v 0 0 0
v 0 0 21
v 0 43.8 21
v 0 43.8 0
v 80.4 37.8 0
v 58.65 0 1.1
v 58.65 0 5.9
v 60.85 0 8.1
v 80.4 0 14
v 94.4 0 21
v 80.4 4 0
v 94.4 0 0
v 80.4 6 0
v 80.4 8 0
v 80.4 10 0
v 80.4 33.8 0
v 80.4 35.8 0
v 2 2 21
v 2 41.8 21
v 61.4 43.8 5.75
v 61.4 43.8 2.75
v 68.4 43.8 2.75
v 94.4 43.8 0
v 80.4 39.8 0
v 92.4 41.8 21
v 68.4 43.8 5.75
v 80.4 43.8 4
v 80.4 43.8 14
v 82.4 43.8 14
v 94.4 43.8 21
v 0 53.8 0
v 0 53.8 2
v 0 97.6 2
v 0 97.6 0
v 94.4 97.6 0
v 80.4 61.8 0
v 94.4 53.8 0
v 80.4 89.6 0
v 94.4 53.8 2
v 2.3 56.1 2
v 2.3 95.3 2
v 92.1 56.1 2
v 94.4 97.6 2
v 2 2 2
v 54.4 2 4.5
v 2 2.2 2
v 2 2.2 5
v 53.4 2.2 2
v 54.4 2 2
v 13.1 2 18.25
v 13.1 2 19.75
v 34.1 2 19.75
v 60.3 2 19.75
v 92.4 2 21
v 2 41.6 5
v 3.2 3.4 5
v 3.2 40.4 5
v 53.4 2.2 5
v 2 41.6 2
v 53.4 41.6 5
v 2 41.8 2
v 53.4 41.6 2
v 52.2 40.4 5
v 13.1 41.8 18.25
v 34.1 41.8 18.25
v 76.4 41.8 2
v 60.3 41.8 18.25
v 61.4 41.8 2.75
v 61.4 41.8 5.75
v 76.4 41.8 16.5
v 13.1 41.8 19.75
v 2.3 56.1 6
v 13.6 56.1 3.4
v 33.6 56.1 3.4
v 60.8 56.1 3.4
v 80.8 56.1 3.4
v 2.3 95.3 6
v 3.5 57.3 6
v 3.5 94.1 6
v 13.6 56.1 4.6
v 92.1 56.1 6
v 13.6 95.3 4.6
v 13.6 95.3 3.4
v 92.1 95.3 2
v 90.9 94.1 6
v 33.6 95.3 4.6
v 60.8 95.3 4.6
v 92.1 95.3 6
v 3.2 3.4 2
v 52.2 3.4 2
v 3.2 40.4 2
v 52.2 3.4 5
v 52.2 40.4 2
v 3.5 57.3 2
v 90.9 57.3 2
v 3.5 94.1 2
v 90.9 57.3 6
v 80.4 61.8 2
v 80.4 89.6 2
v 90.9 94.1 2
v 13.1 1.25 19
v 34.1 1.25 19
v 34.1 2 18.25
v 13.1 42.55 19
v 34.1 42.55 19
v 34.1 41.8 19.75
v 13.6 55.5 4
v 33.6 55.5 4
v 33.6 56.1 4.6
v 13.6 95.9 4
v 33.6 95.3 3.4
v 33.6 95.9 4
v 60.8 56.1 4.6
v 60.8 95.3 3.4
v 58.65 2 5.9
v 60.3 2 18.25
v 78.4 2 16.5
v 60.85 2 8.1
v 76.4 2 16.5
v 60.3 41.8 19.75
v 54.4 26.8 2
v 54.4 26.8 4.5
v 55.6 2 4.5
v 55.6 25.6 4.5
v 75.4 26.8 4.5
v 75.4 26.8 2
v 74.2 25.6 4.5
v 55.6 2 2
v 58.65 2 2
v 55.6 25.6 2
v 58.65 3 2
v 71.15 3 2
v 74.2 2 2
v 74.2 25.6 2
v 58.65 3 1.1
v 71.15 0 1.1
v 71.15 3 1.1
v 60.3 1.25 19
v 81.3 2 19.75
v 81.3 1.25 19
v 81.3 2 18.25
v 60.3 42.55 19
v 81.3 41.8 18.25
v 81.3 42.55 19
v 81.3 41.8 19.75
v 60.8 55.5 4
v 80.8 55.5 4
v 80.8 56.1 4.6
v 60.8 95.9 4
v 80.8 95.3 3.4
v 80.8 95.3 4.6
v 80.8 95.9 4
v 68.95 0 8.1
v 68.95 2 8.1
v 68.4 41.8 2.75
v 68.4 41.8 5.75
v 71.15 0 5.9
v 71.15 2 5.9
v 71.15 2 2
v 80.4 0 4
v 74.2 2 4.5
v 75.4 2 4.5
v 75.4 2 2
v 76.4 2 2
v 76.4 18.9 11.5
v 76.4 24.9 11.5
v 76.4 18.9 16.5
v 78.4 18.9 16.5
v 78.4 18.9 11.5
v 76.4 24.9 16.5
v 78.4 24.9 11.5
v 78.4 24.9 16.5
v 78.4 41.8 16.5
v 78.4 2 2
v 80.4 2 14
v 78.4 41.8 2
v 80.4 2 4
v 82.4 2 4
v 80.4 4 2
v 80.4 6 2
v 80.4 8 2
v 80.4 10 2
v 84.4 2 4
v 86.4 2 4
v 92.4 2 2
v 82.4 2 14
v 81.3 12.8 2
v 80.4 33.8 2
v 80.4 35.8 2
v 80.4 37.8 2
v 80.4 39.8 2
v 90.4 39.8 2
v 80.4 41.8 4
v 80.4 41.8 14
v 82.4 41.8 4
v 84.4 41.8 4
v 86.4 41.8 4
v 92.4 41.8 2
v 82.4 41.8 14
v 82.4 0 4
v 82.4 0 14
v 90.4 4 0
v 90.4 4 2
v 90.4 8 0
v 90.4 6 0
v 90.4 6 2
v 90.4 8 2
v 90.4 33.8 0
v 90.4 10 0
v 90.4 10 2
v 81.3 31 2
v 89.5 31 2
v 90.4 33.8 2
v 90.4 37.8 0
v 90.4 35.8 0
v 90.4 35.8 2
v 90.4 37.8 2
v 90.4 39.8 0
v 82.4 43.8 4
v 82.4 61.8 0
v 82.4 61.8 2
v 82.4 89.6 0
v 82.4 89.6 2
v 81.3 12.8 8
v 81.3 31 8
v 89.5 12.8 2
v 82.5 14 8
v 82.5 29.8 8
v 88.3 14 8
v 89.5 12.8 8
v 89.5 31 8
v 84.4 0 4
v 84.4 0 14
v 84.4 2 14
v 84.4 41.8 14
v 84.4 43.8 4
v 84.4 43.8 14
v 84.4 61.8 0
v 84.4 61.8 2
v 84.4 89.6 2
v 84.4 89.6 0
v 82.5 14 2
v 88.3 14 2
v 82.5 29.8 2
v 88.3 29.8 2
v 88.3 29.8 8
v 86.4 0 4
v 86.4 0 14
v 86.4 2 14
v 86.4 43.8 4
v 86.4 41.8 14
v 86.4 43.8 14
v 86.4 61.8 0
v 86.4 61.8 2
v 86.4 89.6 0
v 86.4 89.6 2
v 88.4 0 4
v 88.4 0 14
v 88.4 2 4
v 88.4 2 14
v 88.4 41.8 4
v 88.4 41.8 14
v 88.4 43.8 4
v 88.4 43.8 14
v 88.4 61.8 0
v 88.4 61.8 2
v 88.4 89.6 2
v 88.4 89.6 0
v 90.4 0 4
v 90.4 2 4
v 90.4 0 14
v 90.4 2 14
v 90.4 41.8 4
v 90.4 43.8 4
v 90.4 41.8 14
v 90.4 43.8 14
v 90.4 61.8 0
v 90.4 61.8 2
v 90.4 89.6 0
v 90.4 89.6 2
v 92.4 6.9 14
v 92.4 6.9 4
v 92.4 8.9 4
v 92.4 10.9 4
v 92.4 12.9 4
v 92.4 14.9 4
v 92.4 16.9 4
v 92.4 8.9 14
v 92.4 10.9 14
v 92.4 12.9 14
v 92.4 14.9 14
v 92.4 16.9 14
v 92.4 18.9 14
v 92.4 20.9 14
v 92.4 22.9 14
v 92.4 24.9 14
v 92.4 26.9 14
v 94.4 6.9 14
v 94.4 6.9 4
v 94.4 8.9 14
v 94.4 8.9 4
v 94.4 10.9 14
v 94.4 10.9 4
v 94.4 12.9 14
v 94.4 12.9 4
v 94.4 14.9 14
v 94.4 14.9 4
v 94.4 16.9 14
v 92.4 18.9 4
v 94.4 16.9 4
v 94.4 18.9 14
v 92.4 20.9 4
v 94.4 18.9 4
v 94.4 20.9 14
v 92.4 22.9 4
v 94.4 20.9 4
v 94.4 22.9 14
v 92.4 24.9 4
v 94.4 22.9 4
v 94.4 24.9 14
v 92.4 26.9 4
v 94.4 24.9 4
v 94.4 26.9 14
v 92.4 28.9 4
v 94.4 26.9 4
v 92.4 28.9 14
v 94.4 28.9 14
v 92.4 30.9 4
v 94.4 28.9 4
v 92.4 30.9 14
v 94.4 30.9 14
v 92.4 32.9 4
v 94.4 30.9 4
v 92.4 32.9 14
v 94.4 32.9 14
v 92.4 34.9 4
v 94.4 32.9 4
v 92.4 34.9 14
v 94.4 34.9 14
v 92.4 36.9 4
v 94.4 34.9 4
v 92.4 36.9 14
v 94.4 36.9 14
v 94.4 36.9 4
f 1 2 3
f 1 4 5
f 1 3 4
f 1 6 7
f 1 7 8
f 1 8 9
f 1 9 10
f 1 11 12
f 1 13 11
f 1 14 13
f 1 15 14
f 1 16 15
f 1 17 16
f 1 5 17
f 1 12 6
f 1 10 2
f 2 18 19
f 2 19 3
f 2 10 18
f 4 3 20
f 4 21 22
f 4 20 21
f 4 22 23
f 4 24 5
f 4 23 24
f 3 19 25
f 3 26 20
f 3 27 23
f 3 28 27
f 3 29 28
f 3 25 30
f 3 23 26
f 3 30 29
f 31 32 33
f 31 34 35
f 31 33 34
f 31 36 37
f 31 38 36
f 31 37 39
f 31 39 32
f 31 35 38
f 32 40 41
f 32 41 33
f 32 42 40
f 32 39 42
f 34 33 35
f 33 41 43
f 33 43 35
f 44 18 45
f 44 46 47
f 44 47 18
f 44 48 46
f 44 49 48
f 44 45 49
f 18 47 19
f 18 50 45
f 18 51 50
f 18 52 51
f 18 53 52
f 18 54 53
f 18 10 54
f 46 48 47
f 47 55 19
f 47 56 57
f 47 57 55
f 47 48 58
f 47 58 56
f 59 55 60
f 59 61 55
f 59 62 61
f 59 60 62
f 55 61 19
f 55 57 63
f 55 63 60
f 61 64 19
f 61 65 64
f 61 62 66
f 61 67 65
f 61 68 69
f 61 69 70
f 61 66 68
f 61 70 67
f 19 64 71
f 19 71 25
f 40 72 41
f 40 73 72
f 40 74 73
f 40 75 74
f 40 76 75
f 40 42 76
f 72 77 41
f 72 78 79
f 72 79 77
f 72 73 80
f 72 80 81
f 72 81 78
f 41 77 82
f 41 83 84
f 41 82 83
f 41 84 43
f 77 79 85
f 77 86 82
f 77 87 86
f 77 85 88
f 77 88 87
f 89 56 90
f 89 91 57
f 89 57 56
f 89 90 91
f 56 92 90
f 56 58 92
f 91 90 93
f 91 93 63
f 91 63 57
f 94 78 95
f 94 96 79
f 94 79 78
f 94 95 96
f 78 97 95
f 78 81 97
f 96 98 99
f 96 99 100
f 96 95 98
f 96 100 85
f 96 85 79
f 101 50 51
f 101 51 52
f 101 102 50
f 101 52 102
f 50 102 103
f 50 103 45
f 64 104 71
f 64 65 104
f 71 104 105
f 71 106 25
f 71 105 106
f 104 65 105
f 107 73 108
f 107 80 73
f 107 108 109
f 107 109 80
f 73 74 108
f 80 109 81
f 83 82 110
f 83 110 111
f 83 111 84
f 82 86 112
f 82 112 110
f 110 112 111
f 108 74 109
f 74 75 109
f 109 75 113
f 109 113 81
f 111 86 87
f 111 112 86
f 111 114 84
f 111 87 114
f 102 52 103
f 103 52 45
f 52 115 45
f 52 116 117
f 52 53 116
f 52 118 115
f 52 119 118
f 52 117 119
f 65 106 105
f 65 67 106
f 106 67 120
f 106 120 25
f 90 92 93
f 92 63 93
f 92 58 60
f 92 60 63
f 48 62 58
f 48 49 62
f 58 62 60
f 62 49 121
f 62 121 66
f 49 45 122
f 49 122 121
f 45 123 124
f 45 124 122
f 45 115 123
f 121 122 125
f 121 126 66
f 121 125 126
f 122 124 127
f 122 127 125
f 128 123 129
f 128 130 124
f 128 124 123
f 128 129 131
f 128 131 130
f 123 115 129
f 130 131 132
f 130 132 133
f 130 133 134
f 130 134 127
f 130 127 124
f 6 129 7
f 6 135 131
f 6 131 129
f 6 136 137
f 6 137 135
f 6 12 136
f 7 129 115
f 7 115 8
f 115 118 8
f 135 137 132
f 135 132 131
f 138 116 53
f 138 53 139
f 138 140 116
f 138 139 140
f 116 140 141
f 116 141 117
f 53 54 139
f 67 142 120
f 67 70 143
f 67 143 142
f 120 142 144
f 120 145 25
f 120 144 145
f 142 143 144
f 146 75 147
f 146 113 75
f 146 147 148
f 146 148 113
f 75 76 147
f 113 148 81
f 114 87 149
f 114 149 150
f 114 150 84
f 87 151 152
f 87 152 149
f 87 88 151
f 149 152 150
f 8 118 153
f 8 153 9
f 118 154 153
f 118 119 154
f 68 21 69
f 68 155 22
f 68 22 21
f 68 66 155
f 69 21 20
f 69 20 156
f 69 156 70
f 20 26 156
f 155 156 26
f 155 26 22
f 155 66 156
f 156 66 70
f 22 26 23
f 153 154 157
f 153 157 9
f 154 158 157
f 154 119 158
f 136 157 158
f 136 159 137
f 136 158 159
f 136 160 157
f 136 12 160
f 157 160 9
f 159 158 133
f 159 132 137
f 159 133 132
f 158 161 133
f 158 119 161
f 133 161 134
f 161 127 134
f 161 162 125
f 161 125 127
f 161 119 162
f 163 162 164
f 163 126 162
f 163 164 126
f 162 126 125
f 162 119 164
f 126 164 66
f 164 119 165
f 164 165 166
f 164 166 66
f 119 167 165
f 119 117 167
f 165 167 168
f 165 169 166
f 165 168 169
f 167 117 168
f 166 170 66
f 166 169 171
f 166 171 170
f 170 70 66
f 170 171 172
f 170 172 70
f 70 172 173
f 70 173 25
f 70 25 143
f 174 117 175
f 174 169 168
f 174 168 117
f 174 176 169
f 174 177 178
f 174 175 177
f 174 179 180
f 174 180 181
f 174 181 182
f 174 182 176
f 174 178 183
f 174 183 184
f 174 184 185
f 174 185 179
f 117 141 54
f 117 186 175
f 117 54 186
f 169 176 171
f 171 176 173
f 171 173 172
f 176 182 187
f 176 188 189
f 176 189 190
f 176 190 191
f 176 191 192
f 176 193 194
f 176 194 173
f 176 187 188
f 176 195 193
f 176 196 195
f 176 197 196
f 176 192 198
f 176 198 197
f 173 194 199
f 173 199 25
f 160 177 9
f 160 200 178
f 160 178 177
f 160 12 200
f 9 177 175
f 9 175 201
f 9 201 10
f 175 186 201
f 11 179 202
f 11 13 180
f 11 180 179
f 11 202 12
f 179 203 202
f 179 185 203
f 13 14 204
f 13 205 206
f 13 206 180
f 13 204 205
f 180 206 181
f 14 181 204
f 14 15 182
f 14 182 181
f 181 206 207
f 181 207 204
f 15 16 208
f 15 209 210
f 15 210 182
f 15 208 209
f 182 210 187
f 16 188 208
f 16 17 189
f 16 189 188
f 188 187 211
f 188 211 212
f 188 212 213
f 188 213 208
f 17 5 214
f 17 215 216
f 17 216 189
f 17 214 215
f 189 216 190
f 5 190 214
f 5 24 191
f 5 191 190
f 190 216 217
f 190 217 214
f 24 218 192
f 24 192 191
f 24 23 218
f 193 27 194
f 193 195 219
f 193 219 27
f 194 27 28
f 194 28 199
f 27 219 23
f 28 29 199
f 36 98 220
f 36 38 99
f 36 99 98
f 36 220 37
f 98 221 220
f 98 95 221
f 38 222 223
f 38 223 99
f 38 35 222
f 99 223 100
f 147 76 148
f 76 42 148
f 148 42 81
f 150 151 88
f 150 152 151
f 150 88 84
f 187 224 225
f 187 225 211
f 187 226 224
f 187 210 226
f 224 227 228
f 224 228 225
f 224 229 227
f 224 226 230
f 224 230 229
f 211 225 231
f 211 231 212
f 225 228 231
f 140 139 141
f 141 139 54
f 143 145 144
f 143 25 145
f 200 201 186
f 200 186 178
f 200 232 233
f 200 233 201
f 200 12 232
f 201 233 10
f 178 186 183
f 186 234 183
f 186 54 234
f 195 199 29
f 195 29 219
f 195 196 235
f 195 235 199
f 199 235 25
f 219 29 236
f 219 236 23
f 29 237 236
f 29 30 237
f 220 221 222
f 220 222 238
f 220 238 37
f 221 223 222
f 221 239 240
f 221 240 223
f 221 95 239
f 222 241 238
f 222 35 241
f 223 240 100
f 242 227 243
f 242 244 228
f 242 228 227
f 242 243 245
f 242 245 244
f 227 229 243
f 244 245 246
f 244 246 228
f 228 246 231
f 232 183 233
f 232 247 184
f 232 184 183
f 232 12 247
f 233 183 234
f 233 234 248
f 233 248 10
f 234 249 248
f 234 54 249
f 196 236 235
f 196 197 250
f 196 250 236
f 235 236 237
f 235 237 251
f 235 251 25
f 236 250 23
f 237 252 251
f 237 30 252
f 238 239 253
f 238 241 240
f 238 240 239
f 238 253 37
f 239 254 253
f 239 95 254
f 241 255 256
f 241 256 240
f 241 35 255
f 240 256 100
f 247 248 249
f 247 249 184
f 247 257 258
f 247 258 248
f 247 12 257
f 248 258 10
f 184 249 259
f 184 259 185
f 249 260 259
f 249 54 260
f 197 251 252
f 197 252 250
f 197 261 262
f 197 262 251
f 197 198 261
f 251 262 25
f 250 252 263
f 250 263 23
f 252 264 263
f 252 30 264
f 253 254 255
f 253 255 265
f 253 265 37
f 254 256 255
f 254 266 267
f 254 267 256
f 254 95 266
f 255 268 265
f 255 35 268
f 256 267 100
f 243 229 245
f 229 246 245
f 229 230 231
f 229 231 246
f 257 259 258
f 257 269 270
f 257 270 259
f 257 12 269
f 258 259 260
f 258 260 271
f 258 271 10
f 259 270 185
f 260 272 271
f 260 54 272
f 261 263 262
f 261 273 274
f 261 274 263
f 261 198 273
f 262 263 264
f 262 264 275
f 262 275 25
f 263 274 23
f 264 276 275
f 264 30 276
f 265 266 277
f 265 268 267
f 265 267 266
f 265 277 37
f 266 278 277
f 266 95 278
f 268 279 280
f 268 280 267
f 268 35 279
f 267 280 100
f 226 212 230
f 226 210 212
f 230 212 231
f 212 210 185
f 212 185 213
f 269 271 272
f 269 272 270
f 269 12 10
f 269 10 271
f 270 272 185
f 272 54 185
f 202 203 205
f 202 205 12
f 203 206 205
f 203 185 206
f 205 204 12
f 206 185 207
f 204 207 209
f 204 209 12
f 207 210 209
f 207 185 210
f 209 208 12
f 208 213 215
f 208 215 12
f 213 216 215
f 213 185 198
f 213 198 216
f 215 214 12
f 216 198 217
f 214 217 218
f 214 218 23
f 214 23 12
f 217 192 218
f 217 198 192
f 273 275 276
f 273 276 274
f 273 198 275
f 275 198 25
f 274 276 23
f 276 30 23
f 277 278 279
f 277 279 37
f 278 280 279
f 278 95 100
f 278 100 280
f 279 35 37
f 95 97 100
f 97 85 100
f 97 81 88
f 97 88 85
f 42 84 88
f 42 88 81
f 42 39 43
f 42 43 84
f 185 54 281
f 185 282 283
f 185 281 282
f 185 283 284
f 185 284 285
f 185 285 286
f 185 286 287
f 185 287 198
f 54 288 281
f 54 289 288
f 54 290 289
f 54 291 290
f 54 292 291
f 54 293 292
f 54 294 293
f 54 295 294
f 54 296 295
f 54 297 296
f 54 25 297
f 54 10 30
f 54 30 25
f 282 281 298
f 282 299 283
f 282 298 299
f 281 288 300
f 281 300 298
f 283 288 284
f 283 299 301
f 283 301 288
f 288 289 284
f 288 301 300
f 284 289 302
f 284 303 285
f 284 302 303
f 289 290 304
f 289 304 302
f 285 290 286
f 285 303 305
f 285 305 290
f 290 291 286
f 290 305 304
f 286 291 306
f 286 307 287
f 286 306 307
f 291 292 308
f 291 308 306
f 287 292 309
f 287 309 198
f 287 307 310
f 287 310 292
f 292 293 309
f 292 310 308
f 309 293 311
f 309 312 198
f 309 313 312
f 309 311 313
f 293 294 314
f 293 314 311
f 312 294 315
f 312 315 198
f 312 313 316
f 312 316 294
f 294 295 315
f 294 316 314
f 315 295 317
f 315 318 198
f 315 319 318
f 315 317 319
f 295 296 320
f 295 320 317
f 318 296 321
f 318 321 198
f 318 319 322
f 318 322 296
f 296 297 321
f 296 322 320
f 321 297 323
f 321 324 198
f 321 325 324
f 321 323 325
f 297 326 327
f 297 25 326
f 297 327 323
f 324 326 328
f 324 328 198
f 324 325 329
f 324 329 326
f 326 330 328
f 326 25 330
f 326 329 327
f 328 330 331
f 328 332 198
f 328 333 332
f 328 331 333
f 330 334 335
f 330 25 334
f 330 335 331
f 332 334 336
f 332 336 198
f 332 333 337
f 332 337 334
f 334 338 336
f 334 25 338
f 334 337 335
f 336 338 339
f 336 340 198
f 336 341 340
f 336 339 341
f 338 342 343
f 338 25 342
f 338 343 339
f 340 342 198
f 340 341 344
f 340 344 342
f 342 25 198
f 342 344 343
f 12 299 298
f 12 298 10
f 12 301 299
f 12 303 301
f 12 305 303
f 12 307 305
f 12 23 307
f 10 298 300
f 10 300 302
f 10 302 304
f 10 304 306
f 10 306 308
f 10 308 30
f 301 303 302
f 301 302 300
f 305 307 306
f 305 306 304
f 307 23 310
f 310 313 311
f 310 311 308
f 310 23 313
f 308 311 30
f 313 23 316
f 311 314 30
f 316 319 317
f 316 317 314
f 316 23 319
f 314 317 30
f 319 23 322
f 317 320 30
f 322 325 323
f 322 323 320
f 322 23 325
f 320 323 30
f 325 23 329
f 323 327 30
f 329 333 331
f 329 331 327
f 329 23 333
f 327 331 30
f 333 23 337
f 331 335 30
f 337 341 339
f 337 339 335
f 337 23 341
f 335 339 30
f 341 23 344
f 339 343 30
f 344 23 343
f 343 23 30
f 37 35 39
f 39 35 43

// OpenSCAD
// file: workbench.scad
// workbench.scad: named parts and features for the OpenSCAD workbench.
//
//   use <workbench.scad>
//
// part("name") { ... }  marks one physical piece. The workbench renders the model once for
//   every name (out/parts/<n>.stl) and once more for the geometry outside any part, so the
//   web UI can show, select and comment on "the lid". Put every piece in a part, including
//   the plain geometry of a model that has only one piece. Parts can be used as the first
//   child of difference(), but not as subtracted children: a subtracted part is rendered
//   without the body it cuts, so its mesh would be wrong.
//   Nested part() calls are not supported: the inner one belongs to the outer part, is ignored
//   and a warning is echoed. Names "__rest__" and "(unlabelled)" are reserved; such a part
//   renders as plain geometry.
//
// feature("name", at) renders nothing. It names a point (holes, chamfers, mounting points)
//   in ABSOLUTE model coordinates [x, y, z] in mm: OpenSCAD can't report the current transform,
//   so compute `at` yourself. Features are listed in the viewer and in list_parts.
//
// Filtering: the workbench writes a wrapper file that sets $only_part and includes main.scad,
// so no OpenSCAD command line flag for $ variables is needed. Unset $only_part renders
// everything; $only_part == name renders that part only; any other value renders no part.

module part(name) {
  if (name == "__rest__" || name == "(unlabelled)") {
    echo(str("WORKBENCH WARNING: part(\"", name, "\") is a reserved name; rendered as plain geometry"));
    children();
  } else if (is_undef($wb_part)) {
    __wb_part(name) children();
  } else {
    __wb_nested(name, $wb_part) children();
  }
}

module __wb_part(name) {
  echo(str("PART:", name));
  if (is_undef($only_part) || $only_part == name) {
    $wb_part = name;
    children();
  }
}

module __wb_nested(name, outer) {
  echo(str("WORKBENCH WARNING: part(\"", name, "\") is inside part(\"", outer, "\"); it belongs to that part and is ignored"));
  children();
}

module feature(name, at) {
  echo(str("FEATURE:", name, ":", at));
}
// main file
use <workbench.scad>
$fn = 48;

// ================= measured parts (check against yours) =================
bat_l = 48;      // 3xAAA open holder, length (X)   -- measure
bat_w = 36;      // width (Y)                       -- measure
bat_h = 14;      // height incl. cells (Z)          -- measure
esp_l = 22.5;    // ESP32-C3 SuperMini board length (Y, USB end at front)
esp_w = 18;      // board width (X)
esp_pcb = 1.0;   // board thickness
usb_overhang = 0.8; // USB-C shell sticks out past the board edge
usb_zc = 1.6;    // USB-C centre above board top
dht_w = 15.5;    // DHT11 body width
dht_t = 5.5;     // DHT11 body thickness
sw_body_h = 4.5; // slide switch body height (sits on the floor)

// ================= openings =================
usb_w = 12.5;    // opening for the cable's overmould
usb_h = 7;
usb_chamfer = 2.2; // 45 deg top corners keep the bridge short
sw_slot_w = 7;   // lever travel + lever width + margin
sw_slot_h = 3;
vent_w = 2;
vent_h = 10;
vent_pitch = 4;

// ================= shell =================
wall = 2;
floor_t = 2;
lid_t = 2;
fit = 0.3;       // clearance between moving / inserted parts
bat_fit = 0.5;
rib_t = 1.2;     // locating ribs / frames
rib_h = 3;       // battery ribs above the floor
esp_frame_h = 2.5;
dht_cup_h = 6;
head_room = 5;   // above the battery holder: wires + lid lip
sc_l = 14;       // sensor chamber length (X)
div_t = 2;       // divider wall
notch_w = 6;     // wire notch in the divider
notch_d = 5;
lip_h = 4;
lip_t = 1.2;
snap_d = 0.6;    // snap bump height (interference = snap_d - fit)
snap_len = 20;
lid_gap = 10;    // distance between base and lid on the bed

// ================= derived =================
zone_bat = bat_l + 2*bat_fit + 2*rib_t;
zone_esp = esp_w + 2*fit + 2*rib_t + 2;
in_x = zone_bat + zone_esp + div_t + sc_l;
in_y = max(bat_w + 2*bat_fit + 2*rib_t, esp_l + usb_overhang + fit + rib_t + 15);
in_h = bat_h + head_room;
out_x = in_x + 2*wall;
out_y = in_y + 2*wall;
out_h = floor_t + in_h;

bx0 = wall;                 // battery zone start
ex0 = bx0 + zone_bat;       // ESP zone start
dx0 = ex0 + zone_esp;       // divider
sx0 = dx0 + div_t;          // sensor chamber start
cy  = wall + in_y/2;

esp_x0 = ex0 + (zone_esp - esp_w)/2;     // board footprint
esp_y0 = wall + usb_overhang;
usb_x = esp_x0 + esp_w/2;
usb_z = floor_t + esp_pcb + usb_zc;
sw_x  = ex0 + zone_esp/2;
sw_z  = floor_t + sw_body_h/2;
div_top = floor_t + in_h - lip_h - 0.5;
groove_z = out_h - lip_h/2;
snap_xs = [out_x*0.25, out_x*0.75];
ly = out_y + lid_gap;       // lid position on the bed

// ================= fit + printability checks =================
assert(wall >= 0.8 && lip_t >= 0.8 && rib_t >= 0.8, "walls under 2 perimeters");
assert(usb_z - usb_h/2 > 0, "USB opening reaches below the bed");
echo(usb_bridge = usb_w - 2*usb_chamfer);
assert(usb_w - 2*usb_chamfer <= 10, "USB opening: flat top bridge > 10 mm");
assert(sw_slot_w <= 10, "switch slot bridge > 10 mm");
assert(vent_w <= 10, "vent bridge > 10 mm");
echo(lip_bottom = out_h - lip_h, battery_top = floor_t + bat_h, divider_top = div_top);
assert(div_top < out_h - lip_h, "divider hits the lid lip");
assert(floor_t + bat_h < out_h - lip_h, "battery holder hits the lid lip");
// lid (print orientation): lip grows from the plate, bump grows from the lip
echo(lip_into_plate = 0.5, bump_into_lip = snap_d);
assert(0.5 >= 0.4, "lip not fused to the plate");
assert(snap_d >= 0.4 && snap_d <= lip_t - 0.4, "snap bump not fused to / cutting through the lip");
echo(snap_interference = snap_d - fit);
assert(groove_z - (snap_d + 0.15) > floor_t + vent_h + 2, "snap groove runs into the wall vents");
echo(outside_mm = [out_x, out_y, out_h + lid_t]);

// ================= helpers =================
module frame(sx, sy, h, t) {     // open rectangular frame standing on z=0
    difference() {
        cube([sx, sy, h]);
        translate([t, t, floor_t]) cube([sx - 2*t, sy - 2*t, h]);
    }
}
module diamond_x(len, d) {      // 45 deg diamond cross-section, along X, centred
    rotate([0, 90, 0]) linear_extrude(len, center = true)
        rotate(45) square(d*sqrt(2), center = true);
}

// ================= base (printed upright) =================
module base() difference() {
    union() {
        difference() {
            cube([out_x, out_y, out_h]);
            translate([wall, wall, floor_t]) cube([in_x, in_y, in_h + 1]);
        }
        // battery holder ribs
        fy = bat_w + 2*bat_fit + 2*rib_t;
        translate([bx0, cy - fy/2, 0]) frame(zone_bat, fy, floor_t + rib_h, rib_t);
        // board cradle: side rails + back rail, open towards the USB wall
        translate([esp_x0 - fit - rib_t, wall, 0]) difference() {
            cube([esp_w + 2*fit + 2*rib_t, usb_overhang + esp_l + fit + rib_t, floor_t + esp_frame_h]);
            translate([rib_t, -1, floor_t]) cube([esp_w + 2*fit, usb_overhang + esp_l + fit + 1, esp_frame_h + 1]);
        }
        // divider
        difference() {
            translate([dx0, wall - 0.5, 0]) cube([div_t, in_y + 1, div_top]);
            translate([dx0 - 1, cy - notch_w/2, div_top - notch_d]) cube([div_t + 2, notch_w, notch_d + 1]);
        }
        // DHT11 cup (sensor stands pins-up, grille facing the end wall)
        cx = sx0 + sc_l/2;
        translate([cx - (dht_t + fit)/2 - rib_t, cy - (dht_w + fit)/2 - rib_t, 0])
            frame(dht_t + fit + 2*rib_t, dht_w + fit + 2*rib_t, floor_t + dht_cup_h, rib_t);
    }
    // USB-C opening, front wall
    translate([usb_x, wall + 1, usb_z]) rotate([90, 0, 0]) linear_extrude(wall + 2)
        polygon([[-usb_w/2, -usb_h/2], [usb_w/2, -usb_h/2], [usb_w/2, usb_h/2 - usb_chamfer],
                 [usb_w/2 - usb_chamfer, usb_h/2], [-usb_w/2 + usb_chamfer, usb_h/2],
                 [-usb_w/2, usb_h/2 - usb_chamfer]]);
    // switch lever slot, back wall
    translate([sw_x - sw_slot_w/2, out_y - wall - 1, sw_z - sw_slot_h/2]) cube([sw_slot_w, wall + 2, sw_slot_h]);
    // sensor chamber vents: front + back walls
    nv = floor((sc_l - 2) / vent_pitch);
    for (i = [0 : nv - 1], y = [-1, out_y - wall - 1])
        translate([sx0 + 2 + i*vent_pitch, y, floor_t + 2]) cube([vent_w, wall + 2, vent_h]);
    // end wall vents
    ne = floor((in_y - 4) / vent_pitch);
    for (i = [0 : ne - 1])
        translate([out_x - wall - 1, cy - (ne - 1)*vent_pitch/2 + i*vent_pitch - vent_w/2, floor_t + 2])
            cube([wall + 2, vent_w, vent_h]);
    // floor vents beside the cup
    for (y = [wall + 2, wall + 6, wall + in_y - 4, wall + in_y - 8])
        translate([sx0 + 2, y, -1]) cube([sc_l - 4, vent_w, floor_t + 2]);
    // snap grooves, inner faces of the long walls
    for (x = snap_xs, y = [wall, wall + in_y])
        translate([x, y, groove_z]) diamond_x(snap_len + 1, snap_d + 0.15);
}

// ================= lid (printed top face down) =================
module lid() translate([0, ly, 0]) difference() {
    union() {
        cube([out_x, out_y, lid_t]);
        translate([wall + fit, wall + fit, lid_t - 0.5]) difference() {
            cube([in_x - 2*fit, in_y - 2*fit, lip_h + 0.5]);
            translate([lip_t, lip_t, -1]) cube([in_x - 2*fit - 2*lip_t, in_y - 2*fit - 2*lip_t, lip_h + 2]);
        }
        // snap bumps on the lip's outer faces (lid is flipped about X when fitted)
        for (x = snap_xs, y = [wall + fit, wall + in_y - fit])
            translate([x, y, lid_t + lip_h/2]) diamond_x(snap_len, snap_d);
    }
    // vents over the sensor chamber
    for (i = [0 : 2])
        translate([sx0 + 2 + i*vent_pitch, wall + 6, -1]) cube([vent_w, in_y - 12, lid_t + 2]);
}

part("base") base();
part("lid") lid();

feature("USB-C opening", [usb_x, 0, usb_z]);
feature("switch slot", [sw_x, out_y, sw_z]);
feature("DHT11 cup", [sx0 + sc_l/2, cy, floor_t]);
feature("wire notch", [dx0 + div_t/2, cy, div_top - notch_d]);
